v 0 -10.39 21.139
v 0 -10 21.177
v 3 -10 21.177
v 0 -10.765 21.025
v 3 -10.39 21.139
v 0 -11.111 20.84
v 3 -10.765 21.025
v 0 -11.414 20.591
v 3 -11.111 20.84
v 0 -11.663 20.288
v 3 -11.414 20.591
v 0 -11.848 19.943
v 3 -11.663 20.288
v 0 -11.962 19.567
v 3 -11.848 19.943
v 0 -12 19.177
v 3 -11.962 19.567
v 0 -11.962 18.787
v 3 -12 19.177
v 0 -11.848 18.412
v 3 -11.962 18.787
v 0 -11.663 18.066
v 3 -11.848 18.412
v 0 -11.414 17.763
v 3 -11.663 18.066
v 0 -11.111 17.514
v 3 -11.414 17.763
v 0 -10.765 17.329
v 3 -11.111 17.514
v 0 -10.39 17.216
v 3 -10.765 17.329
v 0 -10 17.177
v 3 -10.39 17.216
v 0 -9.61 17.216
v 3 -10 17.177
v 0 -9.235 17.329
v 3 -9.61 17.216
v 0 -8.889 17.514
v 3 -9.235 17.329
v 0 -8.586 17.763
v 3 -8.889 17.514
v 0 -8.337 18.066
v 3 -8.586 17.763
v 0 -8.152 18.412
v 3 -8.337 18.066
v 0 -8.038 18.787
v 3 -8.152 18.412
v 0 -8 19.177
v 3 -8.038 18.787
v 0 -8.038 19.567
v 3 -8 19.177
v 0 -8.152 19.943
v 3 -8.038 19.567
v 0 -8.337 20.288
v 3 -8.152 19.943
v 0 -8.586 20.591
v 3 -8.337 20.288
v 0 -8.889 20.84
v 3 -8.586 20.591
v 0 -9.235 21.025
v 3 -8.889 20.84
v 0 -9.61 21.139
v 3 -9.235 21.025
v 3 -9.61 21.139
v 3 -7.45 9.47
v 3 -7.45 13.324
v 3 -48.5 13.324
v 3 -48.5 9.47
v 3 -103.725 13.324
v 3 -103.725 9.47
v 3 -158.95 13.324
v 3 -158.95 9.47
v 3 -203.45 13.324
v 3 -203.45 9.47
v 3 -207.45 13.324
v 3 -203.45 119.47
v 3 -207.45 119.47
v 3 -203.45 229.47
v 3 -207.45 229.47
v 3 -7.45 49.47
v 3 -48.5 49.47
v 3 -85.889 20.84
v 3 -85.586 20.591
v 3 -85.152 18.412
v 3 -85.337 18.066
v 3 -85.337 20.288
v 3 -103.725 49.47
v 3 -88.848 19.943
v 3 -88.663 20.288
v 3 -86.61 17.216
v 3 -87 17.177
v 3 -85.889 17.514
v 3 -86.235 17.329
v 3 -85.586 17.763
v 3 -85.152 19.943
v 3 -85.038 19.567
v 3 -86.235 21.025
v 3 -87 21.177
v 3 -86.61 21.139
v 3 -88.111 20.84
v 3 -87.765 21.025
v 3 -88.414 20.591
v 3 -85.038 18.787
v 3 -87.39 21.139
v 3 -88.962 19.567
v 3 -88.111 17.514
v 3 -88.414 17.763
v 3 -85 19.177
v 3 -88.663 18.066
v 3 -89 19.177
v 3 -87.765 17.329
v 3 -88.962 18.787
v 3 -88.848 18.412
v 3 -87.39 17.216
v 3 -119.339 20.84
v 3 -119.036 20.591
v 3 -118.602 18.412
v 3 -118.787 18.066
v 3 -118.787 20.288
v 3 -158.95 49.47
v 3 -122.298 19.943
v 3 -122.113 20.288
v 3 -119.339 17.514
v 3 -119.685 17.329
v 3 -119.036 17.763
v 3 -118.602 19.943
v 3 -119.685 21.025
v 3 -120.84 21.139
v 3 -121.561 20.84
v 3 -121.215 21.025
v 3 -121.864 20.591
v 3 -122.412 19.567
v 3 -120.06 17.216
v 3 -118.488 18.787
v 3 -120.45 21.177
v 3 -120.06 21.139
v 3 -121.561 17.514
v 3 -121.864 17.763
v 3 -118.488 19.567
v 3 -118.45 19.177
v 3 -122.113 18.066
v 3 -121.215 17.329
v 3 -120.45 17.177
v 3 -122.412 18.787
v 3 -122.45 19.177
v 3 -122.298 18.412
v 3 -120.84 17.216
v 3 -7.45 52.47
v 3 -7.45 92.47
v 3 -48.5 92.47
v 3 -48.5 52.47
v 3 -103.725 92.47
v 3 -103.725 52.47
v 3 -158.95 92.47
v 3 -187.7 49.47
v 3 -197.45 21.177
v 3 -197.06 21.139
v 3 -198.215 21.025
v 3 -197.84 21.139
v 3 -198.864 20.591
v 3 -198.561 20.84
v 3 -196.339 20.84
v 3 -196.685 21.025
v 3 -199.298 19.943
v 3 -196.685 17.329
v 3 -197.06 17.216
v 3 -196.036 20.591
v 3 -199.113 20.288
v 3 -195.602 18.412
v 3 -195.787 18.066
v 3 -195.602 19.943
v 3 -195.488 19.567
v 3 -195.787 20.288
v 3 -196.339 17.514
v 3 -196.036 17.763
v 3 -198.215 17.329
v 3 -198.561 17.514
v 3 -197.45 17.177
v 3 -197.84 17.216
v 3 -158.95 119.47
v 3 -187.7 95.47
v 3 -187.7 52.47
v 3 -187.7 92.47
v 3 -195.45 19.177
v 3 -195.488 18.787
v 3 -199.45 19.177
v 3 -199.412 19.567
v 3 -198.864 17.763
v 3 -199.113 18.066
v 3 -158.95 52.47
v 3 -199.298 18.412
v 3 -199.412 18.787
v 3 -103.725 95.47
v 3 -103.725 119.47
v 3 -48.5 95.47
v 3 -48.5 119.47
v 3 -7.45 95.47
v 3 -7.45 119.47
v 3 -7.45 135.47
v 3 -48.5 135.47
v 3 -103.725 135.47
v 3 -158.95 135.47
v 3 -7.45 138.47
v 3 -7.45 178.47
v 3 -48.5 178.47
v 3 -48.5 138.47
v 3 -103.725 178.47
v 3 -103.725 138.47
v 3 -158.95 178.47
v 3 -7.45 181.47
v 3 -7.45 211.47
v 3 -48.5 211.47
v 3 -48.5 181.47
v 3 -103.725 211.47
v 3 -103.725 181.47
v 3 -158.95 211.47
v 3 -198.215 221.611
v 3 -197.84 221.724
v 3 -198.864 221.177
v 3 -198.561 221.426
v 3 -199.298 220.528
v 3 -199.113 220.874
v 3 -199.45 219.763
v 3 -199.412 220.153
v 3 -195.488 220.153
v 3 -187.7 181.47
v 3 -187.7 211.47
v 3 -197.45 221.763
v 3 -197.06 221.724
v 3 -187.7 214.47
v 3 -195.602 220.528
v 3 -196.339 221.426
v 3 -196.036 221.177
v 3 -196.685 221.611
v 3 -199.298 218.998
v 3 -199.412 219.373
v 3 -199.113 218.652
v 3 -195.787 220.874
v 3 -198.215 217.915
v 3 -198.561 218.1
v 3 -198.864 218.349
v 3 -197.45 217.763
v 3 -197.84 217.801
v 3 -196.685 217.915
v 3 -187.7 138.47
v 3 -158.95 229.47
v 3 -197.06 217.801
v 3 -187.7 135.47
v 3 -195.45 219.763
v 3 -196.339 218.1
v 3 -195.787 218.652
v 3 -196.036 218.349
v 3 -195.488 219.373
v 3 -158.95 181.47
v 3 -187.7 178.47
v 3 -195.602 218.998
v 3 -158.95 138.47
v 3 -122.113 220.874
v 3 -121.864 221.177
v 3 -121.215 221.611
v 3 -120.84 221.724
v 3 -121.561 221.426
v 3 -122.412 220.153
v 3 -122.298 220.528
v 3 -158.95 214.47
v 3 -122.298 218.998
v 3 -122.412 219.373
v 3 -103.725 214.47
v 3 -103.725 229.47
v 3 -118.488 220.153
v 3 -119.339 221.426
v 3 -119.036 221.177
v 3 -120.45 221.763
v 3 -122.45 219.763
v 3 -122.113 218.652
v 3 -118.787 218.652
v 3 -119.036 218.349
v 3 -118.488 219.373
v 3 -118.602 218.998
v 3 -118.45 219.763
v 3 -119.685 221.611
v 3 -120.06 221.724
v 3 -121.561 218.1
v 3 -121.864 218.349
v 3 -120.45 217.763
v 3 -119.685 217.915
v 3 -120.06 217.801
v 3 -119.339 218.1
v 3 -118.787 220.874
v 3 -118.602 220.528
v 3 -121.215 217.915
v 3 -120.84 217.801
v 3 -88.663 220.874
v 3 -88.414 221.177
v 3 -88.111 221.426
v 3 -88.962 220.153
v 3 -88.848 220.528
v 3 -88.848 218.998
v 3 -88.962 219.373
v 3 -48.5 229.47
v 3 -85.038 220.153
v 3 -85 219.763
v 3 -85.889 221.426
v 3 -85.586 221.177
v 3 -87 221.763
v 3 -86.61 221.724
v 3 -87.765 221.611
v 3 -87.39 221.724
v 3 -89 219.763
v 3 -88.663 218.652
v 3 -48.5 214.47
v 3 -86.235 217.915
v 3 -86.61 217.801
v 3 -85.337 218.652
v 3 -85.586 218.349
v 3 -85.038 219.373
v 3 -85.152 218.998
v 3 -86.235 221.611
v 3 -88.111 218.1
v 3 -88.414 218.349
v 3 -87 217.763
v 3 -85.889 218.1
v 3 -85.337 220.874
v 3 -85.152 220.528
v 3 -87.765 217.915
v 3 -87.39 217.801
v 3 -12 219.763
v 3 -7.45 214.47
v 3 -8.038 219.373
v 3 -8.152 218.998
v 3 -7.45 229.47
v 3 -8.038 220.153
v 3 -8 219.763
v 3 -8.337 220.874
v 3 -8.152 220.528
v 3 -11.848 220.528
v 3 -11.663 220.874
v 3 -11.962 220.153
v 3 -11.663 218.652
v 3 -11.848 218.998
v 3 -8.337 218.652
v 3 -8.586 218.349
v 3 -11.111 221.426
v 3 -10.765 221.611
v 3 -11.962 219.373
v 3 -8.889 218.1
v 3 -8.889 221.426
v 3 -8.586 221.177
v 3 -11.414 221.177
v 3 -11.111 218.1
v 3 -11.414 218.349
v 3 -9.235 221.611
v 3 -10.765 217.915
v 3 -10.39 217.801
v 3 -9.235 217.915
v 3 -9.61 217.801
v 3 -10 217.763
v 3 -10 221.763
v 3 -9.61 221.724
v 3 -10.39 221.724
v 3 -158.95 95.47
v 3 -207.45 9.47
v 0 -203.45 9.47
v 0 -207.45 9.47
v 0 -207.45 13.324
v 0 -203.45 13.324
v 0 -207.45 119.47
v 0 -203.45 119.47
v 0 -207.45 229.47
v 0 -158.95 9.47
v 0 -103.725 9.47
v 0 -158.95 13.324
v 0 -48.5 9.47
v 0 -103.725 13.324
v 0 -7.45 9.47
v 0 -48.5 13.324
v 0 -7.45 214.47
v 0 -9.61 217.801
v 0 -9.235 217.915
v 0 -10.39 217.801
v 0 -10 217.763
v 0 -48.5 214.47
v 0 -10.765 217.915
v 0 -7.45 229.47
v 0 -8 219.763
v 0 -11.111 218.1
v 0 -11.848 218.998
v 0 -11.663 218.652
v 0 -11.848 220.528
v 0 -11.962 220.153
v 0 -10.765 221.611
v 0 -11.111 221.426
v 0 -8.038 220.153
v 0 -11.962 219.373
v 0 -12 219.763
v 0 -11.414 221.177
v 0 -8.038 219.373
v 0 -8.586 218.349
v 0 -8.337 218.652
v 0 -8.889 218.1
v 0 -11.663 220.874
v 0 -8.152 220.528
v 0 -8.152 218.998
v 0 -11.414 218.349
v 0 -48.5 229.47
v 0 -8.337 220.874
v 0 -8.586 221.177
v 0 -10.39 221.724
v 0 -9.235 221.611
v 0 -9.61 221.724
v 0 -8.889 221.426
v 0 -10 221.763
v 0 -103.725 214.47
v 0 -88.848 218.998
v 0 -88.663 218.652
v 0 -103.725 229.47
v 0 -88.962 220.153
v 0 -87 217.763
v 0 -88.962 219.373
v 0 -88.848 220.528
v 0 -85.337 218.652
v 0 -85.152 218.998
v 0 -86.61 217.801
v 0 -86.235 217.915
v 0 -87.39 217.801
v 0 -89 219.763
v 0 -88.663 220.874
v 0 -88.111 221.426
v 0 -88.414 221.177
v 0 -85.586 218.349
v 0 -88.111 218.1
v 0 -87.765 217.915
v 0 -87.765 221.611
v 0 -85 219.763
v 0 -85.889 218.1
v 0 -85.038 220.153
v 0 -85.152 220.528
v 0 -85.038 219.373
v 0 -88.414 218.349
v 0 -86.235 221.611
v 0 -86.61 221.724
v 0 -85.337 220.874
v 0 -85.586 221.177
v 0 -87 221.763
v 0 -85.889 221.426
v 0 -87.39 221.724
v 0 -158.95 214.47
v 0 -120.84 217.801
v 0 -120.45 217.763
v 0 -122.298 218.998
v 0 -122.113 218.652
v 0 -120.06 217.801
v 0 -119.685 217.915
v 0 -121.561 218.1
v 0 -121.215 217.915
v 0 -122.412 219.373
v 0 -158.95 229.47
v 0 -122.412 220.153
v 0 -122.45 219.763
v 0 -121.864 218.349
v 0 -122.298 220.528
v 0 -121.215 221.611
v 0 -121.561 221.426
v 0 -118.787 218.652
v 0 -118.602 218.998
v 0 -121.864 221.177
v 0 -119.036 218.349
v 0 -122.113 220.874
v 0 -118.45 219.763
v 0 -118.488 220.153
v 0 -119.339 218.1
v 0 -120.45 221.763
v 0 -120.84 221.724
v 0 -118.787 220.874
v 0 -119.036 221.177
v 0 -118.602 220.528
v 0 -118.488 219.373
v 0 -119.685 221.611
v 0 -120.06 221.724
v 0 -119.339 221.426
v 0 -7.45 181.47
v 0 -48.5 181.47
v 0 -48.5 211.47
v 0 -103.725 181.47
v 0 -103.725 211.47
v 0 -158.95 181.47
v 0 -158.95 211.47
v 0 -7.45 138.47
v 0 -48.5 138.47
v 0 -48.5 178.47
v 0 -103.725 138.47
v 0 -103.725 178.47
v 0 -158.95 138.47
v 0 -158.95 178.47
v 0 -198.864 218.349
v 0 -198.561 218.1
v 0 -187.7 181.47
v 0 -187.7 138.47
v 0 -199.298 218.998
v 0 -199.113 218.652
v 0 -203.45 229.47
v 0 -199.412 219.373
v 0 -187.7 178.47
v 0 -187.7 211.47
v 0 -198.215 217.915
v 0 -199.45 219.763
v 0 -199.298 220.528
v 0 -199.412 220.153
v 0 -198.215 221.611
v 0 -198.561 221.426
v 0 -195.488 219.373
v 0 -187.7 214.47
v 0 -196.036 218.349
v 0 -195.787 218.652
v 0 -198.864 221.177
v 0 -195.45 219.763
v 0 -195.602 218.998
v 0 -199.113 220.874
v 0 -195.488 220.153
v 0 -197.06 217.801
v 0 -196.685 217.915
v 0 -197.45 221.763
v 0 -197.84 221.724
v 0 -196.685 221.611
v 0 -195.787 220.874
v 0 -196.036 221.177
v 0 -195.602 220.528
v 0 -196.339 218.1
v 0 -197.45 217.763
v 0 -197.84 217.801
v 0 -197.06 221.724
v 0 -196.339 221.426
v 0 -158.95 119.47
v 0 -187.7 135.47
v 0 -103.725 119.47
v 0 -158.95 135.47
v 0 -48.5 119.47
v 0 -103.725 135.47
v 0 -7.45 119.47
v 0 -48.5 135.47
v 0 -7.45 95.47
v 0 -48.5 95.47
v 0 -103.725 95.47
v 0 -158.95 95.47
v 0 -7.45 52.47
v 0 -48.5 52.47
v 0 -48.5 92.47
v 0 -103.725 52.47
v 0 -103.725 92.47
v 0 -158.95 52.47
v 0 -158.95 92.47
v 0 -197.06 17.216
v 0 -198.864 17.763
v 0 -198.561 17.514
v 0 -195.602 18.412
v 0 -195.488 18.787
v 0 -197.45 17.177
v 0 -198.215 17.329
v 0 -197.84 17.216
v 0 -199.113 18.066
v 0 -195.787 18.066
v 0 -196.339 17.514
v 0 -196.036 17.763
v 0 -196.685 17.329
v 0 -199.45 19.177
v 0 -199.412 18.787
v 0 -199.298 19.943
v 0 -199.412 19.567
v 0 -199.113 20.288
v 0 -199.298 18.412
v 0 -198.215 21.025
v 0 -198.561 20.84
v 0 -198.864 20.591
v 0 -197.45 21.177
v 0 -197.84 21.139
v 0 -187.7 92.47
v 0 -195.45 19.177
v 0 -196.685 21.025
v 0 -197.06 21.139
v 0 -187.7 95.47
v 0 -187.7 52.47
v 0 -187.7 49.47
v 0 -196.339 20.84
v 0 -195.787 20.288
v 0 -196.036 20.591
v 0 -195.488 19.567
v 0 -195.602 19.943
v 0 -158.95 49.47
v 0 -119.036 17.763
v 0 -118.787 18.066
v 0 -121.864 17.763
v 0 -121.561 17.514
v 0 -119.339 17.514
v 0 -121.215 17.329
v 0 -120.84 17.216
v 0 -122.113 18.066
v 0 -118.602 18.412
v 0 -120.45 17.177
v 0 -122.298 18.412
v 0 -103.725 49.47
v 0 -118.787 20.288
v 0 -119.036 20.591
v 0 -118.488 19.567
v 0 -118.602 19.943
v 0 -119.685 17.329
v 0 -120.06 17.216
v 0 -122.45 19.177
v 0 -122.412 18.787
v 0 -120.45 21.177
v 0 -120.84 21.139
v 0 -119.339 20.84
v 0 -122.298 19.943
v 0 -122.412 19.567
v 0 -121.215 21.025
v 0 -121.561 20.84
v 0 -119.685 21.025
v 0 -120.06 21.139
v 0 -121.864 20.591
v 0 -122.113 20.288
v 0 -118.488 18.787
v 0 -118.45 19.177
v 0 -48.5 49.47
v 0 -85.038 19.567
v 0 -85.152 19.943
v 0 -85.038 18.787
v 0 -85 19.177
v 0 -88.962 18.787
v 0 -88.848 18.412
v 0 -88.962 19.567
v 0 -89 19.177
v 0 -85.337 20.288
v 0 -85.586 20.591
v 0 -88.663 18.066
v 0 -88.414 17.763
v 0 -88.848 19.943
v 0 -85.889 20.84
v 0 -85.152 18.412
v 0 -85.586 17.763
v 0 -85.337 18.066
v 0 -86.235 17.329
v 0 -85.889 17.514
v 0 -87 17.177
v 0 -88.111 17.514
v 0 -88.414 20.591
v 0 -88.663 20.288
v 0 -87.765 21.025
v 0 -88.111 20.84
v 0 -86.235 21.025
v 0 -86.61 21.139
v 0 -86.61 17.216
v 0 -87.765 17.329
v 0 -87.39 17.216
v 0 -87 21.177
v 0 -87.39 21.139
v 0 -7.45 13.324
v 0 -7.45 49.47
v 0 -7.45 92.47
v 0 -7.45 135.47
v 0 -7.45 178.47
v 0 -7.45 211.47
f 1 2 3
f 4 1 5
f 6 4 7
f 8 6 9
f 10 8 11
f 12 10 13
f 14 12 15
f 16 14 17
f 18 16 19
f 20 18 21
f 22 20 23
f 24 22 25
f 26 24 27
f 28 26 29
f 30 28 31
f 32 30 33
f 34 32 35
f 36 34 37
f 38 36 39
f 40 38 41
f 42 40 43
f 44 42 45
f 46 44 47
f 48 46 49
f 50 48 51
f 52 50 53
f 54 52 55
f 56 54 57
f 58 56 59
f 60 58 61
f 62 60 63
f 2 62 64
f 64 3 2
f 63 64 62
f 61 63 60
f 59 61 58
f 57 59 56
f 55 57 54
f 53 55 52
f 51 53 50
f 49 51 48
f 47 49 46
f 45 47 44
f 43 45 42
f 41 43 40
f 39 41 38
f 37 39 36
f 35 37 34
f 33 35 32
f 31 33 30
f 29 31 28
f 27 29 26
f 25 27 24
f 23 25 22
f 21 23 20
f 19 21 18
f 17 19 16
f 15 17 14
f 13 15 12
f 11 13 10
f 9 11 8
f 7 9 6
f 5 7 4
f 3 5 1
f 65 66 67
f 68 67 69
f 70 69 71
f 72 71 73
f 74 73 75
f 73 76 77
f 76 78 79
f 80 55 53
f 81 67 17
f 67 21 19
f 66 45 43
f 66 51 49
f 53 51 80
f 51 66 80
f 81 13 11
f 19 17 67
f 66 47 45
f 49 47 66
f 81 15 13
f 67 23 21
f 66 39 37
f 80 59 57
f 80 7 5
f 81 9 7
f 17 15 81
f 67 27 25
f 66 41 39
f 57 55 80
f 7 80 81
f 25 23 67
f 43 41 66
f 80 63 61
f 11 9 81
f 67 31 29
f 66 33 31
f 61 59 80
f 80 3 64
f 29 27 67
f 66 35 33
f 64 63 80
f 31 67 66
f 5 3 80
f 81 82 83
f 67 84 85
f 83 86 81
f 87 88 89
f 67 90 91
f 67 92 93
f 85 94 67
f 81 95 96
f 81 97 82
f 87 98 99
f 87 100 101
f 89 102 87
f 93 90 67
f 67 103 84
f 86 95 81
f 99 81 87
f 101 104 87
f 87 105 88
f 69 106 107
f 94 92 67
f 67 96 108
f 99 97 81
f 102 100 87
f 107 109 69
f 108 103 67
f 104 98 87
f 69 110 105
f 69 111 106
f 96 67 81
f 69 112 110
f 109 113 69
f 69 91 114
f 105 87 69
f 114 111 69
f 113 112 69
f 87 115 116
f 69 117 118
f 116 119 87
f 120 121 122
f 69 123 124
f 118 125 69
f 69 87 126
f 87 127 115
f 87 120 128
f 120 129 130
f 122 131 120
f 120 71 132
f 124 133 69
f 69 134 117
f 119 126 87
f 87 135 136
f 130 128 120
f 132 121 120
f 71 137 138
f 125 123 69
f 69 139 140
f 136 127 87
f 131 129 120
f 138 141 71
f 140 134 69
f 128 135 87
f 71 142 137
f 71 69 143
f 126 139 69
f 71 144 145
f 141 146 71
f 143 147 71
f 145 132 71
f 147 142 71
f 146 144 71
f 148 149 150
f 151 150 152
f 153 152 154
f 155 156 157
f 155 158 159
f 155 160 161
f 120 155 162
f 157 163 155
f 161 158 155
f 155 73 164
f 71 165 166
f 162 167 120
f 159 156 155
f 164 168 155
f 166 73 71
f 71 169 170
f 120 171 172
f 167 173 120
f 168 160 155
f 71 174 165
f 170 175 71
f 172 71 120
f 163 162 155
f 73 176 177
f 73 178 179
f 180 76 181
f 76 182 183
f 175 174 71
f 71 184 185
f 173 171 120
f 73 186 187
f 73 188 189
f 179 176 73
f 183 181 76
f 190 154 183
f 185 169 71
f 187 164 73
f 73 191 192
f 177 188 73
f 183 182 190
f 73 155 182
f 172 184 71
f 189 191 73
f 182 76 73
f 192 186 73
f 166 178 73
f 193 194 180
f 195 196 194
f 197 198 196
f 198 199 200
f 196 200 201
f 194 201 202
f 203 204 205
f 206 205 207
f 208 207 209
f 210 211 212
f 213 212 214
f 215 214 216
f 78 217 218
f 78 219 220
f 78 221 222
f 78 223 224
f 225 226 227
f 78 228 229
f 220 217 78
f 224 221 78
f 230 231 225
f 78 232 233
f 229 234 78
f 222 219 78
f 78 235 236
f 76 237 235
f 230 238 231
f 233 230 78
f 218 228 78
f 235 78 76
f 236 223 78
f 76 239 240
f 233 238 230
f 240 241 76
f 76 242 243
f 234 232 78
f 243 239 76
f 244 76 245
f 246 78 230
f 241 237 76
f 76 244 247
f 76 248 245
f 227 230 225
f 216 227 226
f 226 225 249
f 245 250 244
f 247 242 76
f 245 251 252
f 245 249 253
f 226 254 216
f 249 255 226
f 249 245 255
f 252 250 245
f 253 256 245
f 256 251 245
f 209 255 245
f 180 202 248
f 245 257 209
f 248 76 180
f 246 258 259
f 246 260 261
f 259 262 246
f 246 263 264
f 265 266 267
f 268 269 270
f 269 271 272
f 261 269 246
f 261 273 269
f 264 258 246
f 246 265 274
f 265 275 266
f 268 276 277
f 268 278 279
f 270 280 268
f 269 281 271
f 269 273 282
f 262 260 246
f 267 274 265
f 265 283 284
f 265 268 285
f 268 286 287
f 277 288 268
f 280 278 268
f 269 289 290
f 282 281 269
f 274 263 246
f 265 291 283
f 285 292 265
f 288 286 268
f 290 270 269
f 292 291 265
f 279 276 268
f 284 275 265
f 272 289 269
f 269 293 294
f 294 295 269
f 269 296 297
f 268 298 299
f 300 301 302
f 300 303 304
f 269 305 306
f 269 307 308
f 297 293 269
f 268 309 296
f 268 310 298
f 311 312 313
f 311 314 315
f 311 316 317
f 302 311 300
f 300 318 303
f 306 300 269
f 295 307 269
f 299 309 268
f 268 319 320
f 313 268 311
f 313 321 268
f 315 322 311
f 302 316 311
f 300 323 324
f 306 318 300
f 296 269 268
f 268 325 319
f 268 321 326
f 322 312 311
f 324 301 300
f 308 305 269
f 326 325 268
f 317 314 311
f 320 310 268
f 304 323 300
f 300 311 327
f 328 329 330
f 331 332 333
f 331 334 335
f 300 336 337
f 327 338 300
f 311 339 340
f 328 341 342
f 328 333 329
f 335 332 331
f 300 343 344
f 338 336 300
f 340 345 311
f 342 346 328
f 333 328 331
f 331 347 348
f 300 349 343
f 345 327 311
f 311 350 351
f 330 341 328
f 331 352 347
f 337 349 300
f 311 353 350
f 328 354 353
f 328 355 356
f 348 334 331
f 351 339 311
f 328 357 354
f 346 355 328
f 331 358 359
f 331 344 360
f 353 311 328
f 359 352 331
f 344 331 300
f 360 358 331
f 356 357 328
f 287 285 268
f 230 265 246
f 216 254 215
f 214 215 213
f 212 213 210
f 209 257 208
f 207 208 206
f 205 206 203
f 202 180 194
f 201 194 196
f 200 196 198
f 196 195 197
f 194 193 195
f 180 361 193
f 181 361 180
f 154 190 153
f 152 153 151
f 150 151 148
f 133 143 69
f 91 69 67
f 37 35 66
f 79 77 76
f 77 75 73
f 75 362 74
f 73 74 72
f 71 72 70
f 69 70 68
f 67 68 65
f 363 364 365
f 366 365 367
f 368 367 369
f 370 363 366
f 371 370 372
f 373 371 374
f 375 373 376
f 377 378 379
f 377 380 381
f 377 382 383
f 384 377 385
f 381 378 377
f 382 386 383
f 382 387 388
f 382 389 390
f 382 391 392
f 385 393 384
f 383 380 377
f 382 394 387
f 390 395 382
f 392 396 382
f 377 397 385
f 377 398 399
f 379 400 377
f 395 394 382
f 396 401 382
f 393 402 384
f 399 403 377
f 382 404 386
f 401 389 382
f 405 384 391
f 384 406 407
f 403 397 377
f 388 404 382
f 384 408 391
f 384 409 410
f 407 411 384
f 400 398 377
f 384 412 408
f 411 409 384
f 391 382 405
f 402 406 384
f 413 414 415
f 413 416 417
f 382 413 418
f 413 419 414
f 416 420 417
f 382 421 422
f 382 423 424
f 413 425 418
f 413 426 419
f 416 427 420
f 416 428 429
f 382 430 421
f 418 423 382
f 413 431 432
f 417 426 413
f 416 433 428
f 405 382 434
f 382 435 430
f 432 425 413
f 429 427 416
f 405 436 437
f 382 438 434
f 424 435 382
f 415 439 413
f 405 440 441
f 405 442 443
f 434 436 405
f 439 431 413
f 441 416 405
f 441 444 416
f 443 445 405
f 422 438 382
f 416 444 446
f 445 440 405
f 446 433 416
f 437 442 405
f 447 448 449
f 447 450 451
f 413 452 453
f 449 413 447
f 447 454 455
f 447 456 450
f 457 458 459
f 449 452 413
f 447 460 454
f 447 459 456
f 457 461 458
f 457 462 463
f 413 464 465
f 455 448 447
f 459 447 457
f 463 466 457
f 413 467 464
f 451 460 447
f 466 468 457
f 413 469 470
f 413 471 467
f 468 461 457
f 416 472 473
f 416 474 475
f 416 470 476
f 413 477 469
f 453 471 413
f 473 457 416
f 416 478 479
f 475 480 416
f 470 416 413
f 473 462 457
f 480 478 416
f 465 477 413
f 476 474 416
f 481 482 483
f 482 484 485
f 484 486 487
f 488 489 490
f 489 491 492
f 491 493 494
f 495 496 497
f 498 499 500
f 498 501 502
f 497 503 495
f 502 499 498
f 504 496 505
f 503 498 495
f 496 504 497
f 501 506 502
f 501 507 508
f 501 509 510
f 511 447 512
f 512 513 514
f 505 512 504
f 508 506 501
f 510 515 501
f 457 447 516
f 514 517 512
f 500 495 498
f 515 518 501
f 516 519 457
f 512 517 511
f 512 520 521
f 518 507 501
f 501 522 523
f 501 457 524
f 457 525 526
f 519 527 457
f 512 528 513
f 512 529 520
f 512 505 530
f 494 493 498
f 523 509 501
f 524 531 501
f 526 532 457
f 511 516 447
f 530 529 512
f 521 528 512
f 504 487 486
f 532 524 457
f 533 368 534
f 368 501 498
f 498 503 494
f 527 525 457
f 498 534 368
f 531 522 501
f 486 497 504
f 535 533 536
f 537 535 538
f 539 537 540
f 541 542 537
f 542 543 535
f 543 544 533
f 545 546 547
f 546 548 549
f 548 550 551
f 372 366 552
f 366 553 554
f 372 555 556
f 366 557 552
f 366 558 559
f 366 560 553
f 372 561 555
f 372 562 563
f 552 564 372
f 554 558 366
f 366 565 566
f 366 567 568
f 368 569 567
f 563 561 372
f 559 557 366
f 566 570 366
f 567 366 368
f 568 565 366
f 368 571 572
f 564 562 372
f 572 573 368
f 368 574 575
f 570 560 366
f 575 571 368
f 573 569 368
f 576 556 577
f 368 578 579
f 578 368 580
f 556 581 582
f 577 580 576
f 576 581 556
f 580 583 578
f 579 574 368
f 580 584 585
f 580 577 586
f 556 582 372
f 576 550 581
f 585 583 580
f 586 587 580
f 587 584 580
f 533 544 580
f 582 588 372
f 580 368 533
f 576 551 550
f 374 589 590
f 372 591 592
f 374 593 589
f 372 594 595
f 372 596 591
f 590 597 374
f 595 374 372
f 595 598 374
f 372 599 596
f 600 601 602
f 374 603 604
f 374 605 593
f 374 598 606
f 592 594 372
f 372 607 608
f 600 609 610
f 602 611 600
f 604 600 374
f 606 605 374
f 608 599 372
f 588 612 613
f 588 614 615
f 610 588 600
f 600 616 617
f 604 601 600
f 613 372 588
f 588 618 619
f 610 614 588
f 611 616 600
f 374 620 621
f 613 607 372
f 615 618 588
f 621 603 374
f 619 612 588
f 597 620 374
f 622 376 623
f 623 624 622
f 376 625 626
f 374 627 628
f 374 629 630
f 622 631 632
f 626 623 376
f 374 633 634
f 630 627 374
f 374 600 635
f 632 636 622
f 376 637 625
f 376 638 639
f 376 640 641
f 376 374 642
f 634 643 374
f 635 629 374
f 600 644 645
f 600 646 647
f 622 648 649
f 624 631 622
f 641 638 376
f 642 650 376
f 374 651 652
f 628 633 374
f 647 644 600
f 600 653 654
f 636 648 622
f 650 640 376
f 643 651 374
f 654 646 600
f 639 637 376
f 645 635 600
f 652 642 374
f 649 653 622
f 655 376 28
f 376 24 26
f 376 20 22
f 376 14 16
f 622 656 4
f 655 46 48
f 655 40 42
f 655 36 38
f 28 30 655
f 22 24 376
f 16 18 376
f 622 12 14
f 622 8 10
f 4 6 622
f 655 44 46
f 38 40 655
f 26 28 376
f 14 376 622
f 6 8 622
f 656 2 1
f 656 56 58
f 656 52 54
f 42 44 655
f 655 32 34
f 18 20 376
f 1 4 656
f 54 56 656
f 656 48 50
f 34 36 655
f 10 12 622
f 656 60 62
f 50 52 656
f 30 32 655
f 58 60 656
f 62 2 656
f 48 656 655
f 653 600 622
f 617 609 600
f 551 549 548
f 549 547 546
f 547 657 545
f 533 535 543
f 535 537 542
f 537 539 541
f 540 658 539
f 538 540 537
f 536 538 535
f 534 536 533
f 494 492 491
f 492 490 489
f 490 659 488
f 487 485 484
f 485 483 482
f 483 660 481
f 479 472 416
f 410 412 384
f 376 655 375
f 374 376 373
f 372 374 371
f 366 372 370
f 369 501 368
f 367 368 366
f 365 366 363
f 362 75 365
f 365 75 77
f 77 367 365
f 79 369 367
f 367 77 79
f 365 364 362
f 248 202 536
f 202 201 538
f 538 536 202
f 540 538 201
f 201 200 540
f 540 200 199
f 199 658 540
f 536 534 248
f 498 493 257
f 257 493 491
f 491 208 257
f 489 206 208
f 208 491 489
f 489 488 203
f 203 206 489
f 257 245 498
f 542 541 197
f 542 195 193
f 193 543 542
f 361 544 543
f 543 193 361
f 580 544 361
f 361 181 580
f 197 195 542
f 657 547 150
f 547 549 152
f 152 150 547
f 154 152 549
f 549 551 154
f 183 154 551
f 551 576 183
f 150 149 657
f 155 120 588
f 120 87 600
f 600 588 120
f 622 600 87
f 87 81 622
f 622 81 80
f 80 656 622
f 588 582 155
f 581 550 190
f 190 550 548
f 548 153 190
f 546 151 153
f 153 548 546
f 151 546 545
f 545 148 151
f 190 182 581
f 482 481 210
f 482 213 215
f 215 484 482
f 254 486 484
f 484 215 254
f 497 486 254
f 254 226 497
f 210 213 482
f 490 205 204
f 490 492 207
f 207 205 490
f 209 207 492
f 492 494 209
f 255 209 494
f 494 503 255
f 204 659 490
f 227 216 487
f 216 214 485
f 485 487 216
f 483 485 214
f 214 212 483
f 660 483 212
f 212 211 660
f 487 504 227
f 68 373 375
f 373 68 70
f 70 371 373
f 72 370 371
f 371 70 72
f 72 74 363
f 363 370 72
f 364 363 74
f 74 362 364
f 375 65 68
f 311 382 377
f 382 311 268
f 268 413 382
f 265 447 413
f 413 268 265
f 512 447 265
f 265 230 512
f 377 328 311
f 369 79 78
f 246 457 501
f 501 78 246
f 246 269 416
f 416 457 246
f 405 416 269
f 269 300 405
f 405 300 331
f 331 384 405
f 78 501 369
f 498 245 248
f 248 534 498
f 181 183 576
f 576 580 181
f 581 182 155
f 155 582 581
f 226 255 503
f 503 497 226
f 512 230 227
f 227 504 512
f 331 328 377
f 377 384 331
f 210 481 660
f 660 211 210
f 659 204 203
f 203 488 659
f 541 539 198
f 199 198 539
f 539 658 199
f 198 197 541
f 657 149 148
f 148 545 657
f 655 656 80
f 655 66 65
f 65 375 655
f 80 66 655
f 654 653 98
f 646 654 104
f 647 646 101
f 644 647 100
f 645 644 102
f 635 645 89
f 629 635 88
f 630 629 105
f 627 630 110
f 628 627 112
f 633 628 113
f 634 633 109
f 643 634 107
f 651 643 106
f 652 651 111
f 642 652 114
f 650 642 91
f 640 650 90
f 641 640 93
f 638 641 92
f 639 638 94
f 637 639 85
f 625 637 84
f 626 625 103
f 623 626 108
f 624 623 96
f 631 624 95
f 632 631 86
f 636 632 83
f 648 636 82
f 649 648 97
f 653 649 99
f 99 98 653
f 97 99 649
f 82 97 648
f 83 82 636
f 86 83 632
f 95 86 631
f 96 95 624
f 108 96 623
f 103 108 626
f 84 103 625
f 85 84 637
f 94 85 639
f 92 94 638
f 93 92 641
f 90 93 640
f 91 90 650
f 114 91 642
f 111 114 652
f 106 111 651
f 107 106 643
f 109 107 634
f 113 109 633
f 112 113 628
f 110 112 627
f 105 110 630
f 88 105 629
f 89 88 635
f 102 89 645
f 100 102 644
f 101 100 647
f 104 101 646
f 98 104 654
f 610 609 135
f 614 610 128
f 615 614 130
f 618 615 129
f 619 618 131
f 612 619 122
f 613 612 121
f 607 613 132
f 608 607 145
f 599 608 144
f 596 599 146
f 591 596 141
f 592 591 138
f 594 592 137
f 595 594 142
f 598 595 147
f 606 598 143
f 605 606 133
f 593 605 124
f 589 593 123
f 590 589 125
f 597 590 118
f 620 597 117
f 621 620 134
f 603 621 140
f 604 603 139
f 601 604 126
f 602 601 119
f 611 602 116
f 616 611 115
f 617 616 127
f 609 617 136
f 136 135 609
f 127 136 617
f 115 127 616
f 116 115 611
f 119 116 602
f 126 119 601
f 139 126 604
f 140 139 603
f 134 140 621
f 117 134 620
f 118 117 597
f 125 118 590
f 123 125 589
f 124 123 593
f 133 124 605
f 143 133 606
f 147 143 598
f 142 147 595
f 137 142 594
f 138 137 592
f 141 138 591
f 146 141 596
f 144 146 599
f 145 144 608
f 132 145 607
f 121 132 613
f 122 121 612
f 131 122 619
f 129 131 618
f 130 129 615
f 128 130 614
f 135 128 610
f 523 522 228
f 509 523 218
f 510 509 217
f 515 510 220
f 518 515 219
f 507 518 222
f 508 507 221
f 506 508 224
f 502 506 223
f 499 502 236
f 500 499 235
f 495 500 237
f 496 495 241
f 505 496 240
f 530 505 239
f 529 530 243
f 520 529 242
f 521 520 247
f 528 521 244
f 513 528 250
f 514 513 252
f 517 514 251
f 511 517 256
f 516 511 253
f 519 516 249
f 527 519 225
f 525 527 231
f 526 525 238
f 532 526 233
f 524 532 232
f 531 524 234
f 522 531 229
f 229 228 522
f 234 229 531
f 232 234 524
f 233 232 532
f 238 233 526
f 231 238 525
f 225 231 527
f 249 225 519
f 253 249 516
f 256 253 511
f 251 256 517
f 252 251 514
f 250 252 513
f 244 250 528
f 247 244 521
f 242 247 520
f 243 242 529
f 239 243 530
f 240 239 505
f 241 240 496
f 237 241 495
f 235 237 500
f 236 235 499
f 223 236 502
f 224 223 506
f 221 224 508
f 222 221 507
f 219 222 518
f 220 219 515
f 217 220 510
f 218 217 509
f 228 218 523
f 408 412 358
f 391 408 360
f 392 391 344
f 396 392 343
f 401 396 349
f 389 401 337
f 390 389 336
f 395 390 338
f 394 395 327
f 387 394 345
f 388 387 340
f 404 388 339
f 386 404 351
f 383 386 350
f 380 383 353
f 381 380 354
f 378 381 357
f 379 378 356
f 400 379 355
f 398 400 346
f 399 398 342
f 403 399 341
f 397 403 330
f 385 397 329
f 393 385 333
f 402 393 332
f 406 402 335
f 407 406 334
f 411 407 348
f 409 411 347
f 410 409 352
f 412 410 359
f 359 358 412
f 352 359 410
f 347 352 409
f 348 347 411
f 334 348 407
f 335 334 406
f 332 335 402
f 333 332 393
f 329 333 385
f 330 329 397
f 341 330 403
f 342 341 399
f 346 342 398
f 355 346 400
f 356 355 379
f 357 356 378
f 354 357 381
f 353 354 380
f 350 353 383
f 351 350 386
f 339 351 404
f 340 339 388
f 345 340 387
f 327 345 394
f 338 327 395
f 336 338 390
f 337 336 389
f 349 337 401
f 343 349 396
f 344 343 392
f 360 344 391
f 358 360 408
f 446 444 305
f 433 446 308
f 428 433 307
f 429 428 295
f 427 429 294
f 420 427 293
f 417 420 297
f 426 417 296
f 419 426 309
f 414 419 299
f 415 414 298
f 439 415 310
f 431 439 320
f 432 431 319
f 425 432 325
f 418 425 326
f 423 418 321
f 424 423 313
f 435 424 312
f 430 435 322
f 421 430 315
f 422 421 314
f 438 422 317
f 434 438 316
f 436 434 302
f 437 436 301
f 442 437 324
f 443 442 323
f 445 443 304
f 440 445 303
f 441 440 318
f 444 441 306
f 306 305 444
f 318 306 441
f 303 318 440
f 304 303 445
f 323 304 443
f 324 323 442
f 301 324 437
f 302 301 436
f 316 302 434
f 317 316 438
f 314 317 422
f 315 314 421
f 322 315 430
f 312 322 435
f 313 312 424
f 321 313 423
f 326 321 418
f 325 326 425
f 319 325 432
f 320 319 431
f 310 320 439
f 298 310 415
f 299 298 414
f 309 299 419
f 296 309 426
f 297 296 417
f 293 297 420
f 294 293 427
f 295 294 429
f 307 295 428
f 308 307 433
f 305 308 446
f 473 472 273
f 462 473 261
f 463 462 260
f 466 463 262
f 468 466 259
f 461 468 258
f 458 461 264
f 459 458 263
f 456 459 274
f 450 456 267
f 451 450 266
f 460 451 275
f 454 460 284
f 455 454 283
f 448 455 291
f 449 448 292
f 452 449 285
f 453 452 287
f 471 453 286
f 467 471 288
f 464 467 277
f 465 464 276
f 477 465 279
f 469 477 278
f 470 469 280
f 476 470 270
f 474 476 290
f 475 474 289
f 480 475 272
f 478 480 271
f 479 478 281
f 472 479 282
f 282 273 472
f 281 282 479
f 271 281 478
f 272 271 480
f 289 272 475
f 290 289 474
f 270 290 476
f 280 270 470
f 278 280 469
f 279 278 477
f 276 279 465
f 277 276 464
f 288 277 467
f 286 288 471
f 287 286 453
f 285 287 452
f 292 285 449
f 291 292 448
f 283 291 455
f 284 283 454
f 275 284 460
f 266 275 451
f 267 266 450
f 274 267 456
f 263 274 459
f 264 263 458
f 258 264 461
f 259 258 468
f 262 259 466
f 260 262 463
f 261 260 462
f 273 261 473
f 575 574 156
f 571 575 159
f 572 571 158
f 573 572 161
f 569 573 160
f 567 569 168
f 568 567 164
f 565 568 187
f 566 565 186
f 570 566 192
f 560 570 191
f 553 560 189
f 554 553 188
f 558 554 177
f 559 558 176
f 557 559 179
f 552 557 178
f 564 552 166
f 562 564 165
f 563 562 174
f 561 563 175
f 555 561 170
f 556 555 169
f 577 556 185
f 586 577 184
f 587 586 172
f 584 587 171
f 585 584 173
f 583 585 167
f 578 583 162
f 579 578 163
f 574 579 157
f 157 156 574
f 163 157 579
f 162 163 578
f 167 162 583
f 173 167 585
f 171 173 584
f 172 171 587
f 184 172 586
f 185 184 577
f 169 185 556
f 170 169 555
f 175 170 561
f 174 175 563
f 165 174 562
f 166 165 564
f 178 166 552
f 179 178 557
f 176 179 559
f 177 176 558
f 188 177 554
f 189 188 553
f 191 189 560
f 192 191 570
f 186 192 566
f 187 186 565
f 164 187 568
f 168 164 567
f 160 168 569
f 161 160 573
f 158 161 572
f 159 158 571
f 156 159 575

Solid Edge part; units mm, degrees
sketch "Sketch1" plane through (0, 0, 0) normal (-1, 0, 0) x (0, -1, 0)
  line L0 (0, 0) -> (207.45, 0)
  line L1 (207.45, 0) -> (207.45, 214.47)
  line L2 (207.45, 214.47) -> (0, 214.47)
  line L3 (0, 214.47) -> (0, 0)
  dimension "D1" = 207.45
  dimension "D2" = 214.47
extrude "Protrusion1" add sketch "Sketch1" against normal blind 3
sketch "Sketch2" plane through (0, -103.725, 107.235) normal (-1, 0, 0) x (0, 1, 0)
  line L0 (-83.975, -28.235) -> (114.48, -28.235)
  line L1 (114.48, -28.235) -> (114.48, -31.235)
  line L2 (-83.975, -31.235) -> (114.48, -31.235)
  line L3 (-83.975, -28.235) -> (-83.975, -31.235)
  line L4 (-83.975, 11.765) -> (114.48, 11.765)
  line L5 (114.48, 11.765) -> (114.48, 14.765)
  line L6 (-83.975, 14.765) -> (114.48, 14.765)
  line L7 (-83.975, 11.765) -> (-83.975, 14.765)
  line L8 (-83.975, 57.765) -> (114.48, 57.765)
  line L9 (114.48, 57.765) -> (114.48, 54.765)
  line L10 (-83.975, 54.765) -> (114.48, 54.765)
  line L11 (-83.975, 57.765) -> (-83.975, 54.765)
  line L12 (-83.975, -74.235) -> (114.48, -74.235)
  line L13 (114.48, -74.235) -> (114.48, -71.235)
  line L14 (-83.975, -71.235) -> (114.48, -71.235)
  line L15 (-83.975, -74.235) -> (-83.975, -71.235)
  line L16 (-83.975, -104.235) -> (114.48, -104.235)
  line L17 (114.48, -104.235) -> (114.48, -107.235)
  line L18 (-83.975, -107.235) -> (114.48, -107.235)
  line L19 (-83.975, -104.235) -> (-83.975, -107.235)
  dimension "D1" = 214.47
  dimension "D2" = 207.45
  dimension "D3" = 198.455
  dimension "D4" = 3
  dimension "D5" = 3
  dimension "D6" = 40
  dimension "D7" = 40
  dimension "D8" = 3
  dimension "D9" = 3
  dimension "D10" = 3
  dimension "D11" = 3
extrude "Cutout1" cut sketch "Sketch2" against normal blind 10
sketch "Sketch3" plane through (0, -103.725, 107.235) normal (-1, 0, 0) x (0, 1, 0)
  line L0 (-118.847, 97.765) -> (179.5114, 97.765)
  line L1 (191.0928, 110.2989) -> (179.5114, 97.765)
  line L2 (-118.847, 116.9168) -> (191.0928, 110.2989)
  line L3 (-118.847, 97.765) -> (-118.847, 116.9168)
  dimension "D1" = 298.3584
  dimension "D2" = 40
  dimension "D3" = 19.1518
  dimension "D4" = 310.0104
  dimension "D5" = 17.0653
extrude "Cutout2" cut sketch "Sketch3" against normal blind 37
sketch "Sketch4" plane through (0, -103.725, 111.97) normal (-1, 0, 0) x (0, 1, 0)
  line L0 (-103.725, 102.5) -> (-103.725, -102.5)
  line L1 (-103.725, -102.5) -> (83.725, -102.5)
  line L2 (83.725, -102.5) -> (83.725, -99.5)
  line L3 (83.725, -99.5) -> (103.725, -99.5)
  line L4 (103.725, -99.5) -> (103.725, -69.5)
  line L5 (83.725, -69.5) -> (103.725, -69.5)
  line L6 (83.725, -66.5) -> (83.725, -69.5)
  line L7 (83.725, -66.5) -> (103.725, -66.5)
  line L8 (103.725, -66.5) -> (103.725, -26.5)
  line L9 (83.725, -26.5) -> (103.725, -26.5)
  line L10 (83.725, -23.5) -> (83.725, -26.5)
  line L11 (83.725, -23.5) -> (103.725, -23.5)
  line L12 (103.725, -23.5) -> (103.725, 16.5)
  line L13 (83.725, 16.5) -> (103.725, 16.5)
  line L14 (83.725, 19.5) -> (83.725, 16.5)
  line L15 (83.725, 19.5) -> (103.725, 19.5)
  line L16 (103.725, 19.5) -> (103.725, 59.5)
  line L17 (83.725, 59.5) -> (103.725, 59.5)
  line L18 (83.725, 62.5) -> (83.725, 59.5)
  line L19 (83.725, 62.5) -> (103.725, 62.5)
  line L20 (103.725, 62.5) -> (103.725, 102.5)
  line L21 (32.3413, 102.5) -> (103.725, 102.5)
  line L22 (-103.725, 102.5) -> (32.3413, 102.5)
  dimension "D1" = 187.45
  dimension "D2" = 159
  dimension "D3" = 20
  dimension "D4" = 20
  dimension "D5" = 20
  dimension "D6" = 20
  dimension "D7" = 3
  dimension "D8" = 20
  dimension "D9" = 20
  dimension "D10" = 20
  dimension "D11" = 20
  dimension "D12" = 20
  dimension "D13" = 71.3837
extrude "Protrusion2" add sketch "Sketch4" along normal blind 3
sketch "Sketch5" plane through (0, -113.725, 214.47) normal (0, 0, 1) x (0, 1, 0)
  line L0 (-93.725, -3) -> (113.725, -3)
  line L1 (113.725, -3) -> (113.725, 3)
  line L2 (113.725, 3) -> (-93.725, 3)
  line L3 (-93.725, 3) -> (-93.725, -3)
  dimension "D1" = 207.45
  dimension "D2" = 6
extrude "Protrusion3" add sketch "Sketch5" along normal blind 15
sketch "Sketch6" plane through (-3, -103.725, 111.8236) normal (-1, 0, 0) x (0, 1, 0)
  circle A0 centre (93.725, 92.6464) radius 2
  circle A1 centre (16.725, 92.6464) radius 2
  circle A2 centre (-16.725, 92.6464) radius 2
  circle A3 centre (-93.725, -107.9393) radius 2
  circle A4 centre (93.725, -107.9393) radius 2
  circle A5 centre (16.725, -107.9393) radius 2
  circle A6 centre (-16.725, -107.9393) radius 2
  circle A7 centre (-93.725, 92.6464) radius 2
  dimension "D1" = 10
  dimension "D2" = 10
  dimension "D3" = 4
  dimension "D4" = 10
  dimension "D5" = 10
  dimension "D6" = 207.45
  dimension "D7" = 220
extrude "Cutout3" cut sketch "Sketch6" against normal blind 10
sketch "Sketch7" plane through (0, -103.725, 229.47) normal (0, 0, 1) x (0, 1, 0)
  line L0 (-110.3839, 0) -> (-110.3839, 8.5479)
  line L1 (-110.3839, 8.5479) -> (109.9811, 8.5479)
  line L2 (109.9811, 8.5479) -> (111.4132, 0)
  line L3 (111.4132, 0) -> (-110.3839, 0)
  dimension "D1" = 8.5479
  dimension "D2" = 220.365
  dimension "D3" = 8.667
extrude "ExtrudedCutout_41" cut sketch "Sketch7" against normal blind 407
sketch "Sketch8" plane through (3, -103.725, 119.47) normal (1, 0, 0) x (0, 1, 0)
  line L0 (96.275, 123.6289) -> (96.275, -147.9139)
  line L1 (117.9514, -132.6396) -> (96.275, -147.9139)
  line L2 (117.9514, 110.6175) -> (117.9514, -132.6396)
  line L3 (96.275, 123.6289) -> (117.9514, 110.6175)
  dimension "D1" = 271.5429
  dimension "D2" = 200
  dimension "D3" = 25.2817
  dimension "D4" = 243.2571
  dimension "D5" = 26.5174
extrude "ExtrudedCutout_42" cut sketch "Sketch8" against normal blind 43
